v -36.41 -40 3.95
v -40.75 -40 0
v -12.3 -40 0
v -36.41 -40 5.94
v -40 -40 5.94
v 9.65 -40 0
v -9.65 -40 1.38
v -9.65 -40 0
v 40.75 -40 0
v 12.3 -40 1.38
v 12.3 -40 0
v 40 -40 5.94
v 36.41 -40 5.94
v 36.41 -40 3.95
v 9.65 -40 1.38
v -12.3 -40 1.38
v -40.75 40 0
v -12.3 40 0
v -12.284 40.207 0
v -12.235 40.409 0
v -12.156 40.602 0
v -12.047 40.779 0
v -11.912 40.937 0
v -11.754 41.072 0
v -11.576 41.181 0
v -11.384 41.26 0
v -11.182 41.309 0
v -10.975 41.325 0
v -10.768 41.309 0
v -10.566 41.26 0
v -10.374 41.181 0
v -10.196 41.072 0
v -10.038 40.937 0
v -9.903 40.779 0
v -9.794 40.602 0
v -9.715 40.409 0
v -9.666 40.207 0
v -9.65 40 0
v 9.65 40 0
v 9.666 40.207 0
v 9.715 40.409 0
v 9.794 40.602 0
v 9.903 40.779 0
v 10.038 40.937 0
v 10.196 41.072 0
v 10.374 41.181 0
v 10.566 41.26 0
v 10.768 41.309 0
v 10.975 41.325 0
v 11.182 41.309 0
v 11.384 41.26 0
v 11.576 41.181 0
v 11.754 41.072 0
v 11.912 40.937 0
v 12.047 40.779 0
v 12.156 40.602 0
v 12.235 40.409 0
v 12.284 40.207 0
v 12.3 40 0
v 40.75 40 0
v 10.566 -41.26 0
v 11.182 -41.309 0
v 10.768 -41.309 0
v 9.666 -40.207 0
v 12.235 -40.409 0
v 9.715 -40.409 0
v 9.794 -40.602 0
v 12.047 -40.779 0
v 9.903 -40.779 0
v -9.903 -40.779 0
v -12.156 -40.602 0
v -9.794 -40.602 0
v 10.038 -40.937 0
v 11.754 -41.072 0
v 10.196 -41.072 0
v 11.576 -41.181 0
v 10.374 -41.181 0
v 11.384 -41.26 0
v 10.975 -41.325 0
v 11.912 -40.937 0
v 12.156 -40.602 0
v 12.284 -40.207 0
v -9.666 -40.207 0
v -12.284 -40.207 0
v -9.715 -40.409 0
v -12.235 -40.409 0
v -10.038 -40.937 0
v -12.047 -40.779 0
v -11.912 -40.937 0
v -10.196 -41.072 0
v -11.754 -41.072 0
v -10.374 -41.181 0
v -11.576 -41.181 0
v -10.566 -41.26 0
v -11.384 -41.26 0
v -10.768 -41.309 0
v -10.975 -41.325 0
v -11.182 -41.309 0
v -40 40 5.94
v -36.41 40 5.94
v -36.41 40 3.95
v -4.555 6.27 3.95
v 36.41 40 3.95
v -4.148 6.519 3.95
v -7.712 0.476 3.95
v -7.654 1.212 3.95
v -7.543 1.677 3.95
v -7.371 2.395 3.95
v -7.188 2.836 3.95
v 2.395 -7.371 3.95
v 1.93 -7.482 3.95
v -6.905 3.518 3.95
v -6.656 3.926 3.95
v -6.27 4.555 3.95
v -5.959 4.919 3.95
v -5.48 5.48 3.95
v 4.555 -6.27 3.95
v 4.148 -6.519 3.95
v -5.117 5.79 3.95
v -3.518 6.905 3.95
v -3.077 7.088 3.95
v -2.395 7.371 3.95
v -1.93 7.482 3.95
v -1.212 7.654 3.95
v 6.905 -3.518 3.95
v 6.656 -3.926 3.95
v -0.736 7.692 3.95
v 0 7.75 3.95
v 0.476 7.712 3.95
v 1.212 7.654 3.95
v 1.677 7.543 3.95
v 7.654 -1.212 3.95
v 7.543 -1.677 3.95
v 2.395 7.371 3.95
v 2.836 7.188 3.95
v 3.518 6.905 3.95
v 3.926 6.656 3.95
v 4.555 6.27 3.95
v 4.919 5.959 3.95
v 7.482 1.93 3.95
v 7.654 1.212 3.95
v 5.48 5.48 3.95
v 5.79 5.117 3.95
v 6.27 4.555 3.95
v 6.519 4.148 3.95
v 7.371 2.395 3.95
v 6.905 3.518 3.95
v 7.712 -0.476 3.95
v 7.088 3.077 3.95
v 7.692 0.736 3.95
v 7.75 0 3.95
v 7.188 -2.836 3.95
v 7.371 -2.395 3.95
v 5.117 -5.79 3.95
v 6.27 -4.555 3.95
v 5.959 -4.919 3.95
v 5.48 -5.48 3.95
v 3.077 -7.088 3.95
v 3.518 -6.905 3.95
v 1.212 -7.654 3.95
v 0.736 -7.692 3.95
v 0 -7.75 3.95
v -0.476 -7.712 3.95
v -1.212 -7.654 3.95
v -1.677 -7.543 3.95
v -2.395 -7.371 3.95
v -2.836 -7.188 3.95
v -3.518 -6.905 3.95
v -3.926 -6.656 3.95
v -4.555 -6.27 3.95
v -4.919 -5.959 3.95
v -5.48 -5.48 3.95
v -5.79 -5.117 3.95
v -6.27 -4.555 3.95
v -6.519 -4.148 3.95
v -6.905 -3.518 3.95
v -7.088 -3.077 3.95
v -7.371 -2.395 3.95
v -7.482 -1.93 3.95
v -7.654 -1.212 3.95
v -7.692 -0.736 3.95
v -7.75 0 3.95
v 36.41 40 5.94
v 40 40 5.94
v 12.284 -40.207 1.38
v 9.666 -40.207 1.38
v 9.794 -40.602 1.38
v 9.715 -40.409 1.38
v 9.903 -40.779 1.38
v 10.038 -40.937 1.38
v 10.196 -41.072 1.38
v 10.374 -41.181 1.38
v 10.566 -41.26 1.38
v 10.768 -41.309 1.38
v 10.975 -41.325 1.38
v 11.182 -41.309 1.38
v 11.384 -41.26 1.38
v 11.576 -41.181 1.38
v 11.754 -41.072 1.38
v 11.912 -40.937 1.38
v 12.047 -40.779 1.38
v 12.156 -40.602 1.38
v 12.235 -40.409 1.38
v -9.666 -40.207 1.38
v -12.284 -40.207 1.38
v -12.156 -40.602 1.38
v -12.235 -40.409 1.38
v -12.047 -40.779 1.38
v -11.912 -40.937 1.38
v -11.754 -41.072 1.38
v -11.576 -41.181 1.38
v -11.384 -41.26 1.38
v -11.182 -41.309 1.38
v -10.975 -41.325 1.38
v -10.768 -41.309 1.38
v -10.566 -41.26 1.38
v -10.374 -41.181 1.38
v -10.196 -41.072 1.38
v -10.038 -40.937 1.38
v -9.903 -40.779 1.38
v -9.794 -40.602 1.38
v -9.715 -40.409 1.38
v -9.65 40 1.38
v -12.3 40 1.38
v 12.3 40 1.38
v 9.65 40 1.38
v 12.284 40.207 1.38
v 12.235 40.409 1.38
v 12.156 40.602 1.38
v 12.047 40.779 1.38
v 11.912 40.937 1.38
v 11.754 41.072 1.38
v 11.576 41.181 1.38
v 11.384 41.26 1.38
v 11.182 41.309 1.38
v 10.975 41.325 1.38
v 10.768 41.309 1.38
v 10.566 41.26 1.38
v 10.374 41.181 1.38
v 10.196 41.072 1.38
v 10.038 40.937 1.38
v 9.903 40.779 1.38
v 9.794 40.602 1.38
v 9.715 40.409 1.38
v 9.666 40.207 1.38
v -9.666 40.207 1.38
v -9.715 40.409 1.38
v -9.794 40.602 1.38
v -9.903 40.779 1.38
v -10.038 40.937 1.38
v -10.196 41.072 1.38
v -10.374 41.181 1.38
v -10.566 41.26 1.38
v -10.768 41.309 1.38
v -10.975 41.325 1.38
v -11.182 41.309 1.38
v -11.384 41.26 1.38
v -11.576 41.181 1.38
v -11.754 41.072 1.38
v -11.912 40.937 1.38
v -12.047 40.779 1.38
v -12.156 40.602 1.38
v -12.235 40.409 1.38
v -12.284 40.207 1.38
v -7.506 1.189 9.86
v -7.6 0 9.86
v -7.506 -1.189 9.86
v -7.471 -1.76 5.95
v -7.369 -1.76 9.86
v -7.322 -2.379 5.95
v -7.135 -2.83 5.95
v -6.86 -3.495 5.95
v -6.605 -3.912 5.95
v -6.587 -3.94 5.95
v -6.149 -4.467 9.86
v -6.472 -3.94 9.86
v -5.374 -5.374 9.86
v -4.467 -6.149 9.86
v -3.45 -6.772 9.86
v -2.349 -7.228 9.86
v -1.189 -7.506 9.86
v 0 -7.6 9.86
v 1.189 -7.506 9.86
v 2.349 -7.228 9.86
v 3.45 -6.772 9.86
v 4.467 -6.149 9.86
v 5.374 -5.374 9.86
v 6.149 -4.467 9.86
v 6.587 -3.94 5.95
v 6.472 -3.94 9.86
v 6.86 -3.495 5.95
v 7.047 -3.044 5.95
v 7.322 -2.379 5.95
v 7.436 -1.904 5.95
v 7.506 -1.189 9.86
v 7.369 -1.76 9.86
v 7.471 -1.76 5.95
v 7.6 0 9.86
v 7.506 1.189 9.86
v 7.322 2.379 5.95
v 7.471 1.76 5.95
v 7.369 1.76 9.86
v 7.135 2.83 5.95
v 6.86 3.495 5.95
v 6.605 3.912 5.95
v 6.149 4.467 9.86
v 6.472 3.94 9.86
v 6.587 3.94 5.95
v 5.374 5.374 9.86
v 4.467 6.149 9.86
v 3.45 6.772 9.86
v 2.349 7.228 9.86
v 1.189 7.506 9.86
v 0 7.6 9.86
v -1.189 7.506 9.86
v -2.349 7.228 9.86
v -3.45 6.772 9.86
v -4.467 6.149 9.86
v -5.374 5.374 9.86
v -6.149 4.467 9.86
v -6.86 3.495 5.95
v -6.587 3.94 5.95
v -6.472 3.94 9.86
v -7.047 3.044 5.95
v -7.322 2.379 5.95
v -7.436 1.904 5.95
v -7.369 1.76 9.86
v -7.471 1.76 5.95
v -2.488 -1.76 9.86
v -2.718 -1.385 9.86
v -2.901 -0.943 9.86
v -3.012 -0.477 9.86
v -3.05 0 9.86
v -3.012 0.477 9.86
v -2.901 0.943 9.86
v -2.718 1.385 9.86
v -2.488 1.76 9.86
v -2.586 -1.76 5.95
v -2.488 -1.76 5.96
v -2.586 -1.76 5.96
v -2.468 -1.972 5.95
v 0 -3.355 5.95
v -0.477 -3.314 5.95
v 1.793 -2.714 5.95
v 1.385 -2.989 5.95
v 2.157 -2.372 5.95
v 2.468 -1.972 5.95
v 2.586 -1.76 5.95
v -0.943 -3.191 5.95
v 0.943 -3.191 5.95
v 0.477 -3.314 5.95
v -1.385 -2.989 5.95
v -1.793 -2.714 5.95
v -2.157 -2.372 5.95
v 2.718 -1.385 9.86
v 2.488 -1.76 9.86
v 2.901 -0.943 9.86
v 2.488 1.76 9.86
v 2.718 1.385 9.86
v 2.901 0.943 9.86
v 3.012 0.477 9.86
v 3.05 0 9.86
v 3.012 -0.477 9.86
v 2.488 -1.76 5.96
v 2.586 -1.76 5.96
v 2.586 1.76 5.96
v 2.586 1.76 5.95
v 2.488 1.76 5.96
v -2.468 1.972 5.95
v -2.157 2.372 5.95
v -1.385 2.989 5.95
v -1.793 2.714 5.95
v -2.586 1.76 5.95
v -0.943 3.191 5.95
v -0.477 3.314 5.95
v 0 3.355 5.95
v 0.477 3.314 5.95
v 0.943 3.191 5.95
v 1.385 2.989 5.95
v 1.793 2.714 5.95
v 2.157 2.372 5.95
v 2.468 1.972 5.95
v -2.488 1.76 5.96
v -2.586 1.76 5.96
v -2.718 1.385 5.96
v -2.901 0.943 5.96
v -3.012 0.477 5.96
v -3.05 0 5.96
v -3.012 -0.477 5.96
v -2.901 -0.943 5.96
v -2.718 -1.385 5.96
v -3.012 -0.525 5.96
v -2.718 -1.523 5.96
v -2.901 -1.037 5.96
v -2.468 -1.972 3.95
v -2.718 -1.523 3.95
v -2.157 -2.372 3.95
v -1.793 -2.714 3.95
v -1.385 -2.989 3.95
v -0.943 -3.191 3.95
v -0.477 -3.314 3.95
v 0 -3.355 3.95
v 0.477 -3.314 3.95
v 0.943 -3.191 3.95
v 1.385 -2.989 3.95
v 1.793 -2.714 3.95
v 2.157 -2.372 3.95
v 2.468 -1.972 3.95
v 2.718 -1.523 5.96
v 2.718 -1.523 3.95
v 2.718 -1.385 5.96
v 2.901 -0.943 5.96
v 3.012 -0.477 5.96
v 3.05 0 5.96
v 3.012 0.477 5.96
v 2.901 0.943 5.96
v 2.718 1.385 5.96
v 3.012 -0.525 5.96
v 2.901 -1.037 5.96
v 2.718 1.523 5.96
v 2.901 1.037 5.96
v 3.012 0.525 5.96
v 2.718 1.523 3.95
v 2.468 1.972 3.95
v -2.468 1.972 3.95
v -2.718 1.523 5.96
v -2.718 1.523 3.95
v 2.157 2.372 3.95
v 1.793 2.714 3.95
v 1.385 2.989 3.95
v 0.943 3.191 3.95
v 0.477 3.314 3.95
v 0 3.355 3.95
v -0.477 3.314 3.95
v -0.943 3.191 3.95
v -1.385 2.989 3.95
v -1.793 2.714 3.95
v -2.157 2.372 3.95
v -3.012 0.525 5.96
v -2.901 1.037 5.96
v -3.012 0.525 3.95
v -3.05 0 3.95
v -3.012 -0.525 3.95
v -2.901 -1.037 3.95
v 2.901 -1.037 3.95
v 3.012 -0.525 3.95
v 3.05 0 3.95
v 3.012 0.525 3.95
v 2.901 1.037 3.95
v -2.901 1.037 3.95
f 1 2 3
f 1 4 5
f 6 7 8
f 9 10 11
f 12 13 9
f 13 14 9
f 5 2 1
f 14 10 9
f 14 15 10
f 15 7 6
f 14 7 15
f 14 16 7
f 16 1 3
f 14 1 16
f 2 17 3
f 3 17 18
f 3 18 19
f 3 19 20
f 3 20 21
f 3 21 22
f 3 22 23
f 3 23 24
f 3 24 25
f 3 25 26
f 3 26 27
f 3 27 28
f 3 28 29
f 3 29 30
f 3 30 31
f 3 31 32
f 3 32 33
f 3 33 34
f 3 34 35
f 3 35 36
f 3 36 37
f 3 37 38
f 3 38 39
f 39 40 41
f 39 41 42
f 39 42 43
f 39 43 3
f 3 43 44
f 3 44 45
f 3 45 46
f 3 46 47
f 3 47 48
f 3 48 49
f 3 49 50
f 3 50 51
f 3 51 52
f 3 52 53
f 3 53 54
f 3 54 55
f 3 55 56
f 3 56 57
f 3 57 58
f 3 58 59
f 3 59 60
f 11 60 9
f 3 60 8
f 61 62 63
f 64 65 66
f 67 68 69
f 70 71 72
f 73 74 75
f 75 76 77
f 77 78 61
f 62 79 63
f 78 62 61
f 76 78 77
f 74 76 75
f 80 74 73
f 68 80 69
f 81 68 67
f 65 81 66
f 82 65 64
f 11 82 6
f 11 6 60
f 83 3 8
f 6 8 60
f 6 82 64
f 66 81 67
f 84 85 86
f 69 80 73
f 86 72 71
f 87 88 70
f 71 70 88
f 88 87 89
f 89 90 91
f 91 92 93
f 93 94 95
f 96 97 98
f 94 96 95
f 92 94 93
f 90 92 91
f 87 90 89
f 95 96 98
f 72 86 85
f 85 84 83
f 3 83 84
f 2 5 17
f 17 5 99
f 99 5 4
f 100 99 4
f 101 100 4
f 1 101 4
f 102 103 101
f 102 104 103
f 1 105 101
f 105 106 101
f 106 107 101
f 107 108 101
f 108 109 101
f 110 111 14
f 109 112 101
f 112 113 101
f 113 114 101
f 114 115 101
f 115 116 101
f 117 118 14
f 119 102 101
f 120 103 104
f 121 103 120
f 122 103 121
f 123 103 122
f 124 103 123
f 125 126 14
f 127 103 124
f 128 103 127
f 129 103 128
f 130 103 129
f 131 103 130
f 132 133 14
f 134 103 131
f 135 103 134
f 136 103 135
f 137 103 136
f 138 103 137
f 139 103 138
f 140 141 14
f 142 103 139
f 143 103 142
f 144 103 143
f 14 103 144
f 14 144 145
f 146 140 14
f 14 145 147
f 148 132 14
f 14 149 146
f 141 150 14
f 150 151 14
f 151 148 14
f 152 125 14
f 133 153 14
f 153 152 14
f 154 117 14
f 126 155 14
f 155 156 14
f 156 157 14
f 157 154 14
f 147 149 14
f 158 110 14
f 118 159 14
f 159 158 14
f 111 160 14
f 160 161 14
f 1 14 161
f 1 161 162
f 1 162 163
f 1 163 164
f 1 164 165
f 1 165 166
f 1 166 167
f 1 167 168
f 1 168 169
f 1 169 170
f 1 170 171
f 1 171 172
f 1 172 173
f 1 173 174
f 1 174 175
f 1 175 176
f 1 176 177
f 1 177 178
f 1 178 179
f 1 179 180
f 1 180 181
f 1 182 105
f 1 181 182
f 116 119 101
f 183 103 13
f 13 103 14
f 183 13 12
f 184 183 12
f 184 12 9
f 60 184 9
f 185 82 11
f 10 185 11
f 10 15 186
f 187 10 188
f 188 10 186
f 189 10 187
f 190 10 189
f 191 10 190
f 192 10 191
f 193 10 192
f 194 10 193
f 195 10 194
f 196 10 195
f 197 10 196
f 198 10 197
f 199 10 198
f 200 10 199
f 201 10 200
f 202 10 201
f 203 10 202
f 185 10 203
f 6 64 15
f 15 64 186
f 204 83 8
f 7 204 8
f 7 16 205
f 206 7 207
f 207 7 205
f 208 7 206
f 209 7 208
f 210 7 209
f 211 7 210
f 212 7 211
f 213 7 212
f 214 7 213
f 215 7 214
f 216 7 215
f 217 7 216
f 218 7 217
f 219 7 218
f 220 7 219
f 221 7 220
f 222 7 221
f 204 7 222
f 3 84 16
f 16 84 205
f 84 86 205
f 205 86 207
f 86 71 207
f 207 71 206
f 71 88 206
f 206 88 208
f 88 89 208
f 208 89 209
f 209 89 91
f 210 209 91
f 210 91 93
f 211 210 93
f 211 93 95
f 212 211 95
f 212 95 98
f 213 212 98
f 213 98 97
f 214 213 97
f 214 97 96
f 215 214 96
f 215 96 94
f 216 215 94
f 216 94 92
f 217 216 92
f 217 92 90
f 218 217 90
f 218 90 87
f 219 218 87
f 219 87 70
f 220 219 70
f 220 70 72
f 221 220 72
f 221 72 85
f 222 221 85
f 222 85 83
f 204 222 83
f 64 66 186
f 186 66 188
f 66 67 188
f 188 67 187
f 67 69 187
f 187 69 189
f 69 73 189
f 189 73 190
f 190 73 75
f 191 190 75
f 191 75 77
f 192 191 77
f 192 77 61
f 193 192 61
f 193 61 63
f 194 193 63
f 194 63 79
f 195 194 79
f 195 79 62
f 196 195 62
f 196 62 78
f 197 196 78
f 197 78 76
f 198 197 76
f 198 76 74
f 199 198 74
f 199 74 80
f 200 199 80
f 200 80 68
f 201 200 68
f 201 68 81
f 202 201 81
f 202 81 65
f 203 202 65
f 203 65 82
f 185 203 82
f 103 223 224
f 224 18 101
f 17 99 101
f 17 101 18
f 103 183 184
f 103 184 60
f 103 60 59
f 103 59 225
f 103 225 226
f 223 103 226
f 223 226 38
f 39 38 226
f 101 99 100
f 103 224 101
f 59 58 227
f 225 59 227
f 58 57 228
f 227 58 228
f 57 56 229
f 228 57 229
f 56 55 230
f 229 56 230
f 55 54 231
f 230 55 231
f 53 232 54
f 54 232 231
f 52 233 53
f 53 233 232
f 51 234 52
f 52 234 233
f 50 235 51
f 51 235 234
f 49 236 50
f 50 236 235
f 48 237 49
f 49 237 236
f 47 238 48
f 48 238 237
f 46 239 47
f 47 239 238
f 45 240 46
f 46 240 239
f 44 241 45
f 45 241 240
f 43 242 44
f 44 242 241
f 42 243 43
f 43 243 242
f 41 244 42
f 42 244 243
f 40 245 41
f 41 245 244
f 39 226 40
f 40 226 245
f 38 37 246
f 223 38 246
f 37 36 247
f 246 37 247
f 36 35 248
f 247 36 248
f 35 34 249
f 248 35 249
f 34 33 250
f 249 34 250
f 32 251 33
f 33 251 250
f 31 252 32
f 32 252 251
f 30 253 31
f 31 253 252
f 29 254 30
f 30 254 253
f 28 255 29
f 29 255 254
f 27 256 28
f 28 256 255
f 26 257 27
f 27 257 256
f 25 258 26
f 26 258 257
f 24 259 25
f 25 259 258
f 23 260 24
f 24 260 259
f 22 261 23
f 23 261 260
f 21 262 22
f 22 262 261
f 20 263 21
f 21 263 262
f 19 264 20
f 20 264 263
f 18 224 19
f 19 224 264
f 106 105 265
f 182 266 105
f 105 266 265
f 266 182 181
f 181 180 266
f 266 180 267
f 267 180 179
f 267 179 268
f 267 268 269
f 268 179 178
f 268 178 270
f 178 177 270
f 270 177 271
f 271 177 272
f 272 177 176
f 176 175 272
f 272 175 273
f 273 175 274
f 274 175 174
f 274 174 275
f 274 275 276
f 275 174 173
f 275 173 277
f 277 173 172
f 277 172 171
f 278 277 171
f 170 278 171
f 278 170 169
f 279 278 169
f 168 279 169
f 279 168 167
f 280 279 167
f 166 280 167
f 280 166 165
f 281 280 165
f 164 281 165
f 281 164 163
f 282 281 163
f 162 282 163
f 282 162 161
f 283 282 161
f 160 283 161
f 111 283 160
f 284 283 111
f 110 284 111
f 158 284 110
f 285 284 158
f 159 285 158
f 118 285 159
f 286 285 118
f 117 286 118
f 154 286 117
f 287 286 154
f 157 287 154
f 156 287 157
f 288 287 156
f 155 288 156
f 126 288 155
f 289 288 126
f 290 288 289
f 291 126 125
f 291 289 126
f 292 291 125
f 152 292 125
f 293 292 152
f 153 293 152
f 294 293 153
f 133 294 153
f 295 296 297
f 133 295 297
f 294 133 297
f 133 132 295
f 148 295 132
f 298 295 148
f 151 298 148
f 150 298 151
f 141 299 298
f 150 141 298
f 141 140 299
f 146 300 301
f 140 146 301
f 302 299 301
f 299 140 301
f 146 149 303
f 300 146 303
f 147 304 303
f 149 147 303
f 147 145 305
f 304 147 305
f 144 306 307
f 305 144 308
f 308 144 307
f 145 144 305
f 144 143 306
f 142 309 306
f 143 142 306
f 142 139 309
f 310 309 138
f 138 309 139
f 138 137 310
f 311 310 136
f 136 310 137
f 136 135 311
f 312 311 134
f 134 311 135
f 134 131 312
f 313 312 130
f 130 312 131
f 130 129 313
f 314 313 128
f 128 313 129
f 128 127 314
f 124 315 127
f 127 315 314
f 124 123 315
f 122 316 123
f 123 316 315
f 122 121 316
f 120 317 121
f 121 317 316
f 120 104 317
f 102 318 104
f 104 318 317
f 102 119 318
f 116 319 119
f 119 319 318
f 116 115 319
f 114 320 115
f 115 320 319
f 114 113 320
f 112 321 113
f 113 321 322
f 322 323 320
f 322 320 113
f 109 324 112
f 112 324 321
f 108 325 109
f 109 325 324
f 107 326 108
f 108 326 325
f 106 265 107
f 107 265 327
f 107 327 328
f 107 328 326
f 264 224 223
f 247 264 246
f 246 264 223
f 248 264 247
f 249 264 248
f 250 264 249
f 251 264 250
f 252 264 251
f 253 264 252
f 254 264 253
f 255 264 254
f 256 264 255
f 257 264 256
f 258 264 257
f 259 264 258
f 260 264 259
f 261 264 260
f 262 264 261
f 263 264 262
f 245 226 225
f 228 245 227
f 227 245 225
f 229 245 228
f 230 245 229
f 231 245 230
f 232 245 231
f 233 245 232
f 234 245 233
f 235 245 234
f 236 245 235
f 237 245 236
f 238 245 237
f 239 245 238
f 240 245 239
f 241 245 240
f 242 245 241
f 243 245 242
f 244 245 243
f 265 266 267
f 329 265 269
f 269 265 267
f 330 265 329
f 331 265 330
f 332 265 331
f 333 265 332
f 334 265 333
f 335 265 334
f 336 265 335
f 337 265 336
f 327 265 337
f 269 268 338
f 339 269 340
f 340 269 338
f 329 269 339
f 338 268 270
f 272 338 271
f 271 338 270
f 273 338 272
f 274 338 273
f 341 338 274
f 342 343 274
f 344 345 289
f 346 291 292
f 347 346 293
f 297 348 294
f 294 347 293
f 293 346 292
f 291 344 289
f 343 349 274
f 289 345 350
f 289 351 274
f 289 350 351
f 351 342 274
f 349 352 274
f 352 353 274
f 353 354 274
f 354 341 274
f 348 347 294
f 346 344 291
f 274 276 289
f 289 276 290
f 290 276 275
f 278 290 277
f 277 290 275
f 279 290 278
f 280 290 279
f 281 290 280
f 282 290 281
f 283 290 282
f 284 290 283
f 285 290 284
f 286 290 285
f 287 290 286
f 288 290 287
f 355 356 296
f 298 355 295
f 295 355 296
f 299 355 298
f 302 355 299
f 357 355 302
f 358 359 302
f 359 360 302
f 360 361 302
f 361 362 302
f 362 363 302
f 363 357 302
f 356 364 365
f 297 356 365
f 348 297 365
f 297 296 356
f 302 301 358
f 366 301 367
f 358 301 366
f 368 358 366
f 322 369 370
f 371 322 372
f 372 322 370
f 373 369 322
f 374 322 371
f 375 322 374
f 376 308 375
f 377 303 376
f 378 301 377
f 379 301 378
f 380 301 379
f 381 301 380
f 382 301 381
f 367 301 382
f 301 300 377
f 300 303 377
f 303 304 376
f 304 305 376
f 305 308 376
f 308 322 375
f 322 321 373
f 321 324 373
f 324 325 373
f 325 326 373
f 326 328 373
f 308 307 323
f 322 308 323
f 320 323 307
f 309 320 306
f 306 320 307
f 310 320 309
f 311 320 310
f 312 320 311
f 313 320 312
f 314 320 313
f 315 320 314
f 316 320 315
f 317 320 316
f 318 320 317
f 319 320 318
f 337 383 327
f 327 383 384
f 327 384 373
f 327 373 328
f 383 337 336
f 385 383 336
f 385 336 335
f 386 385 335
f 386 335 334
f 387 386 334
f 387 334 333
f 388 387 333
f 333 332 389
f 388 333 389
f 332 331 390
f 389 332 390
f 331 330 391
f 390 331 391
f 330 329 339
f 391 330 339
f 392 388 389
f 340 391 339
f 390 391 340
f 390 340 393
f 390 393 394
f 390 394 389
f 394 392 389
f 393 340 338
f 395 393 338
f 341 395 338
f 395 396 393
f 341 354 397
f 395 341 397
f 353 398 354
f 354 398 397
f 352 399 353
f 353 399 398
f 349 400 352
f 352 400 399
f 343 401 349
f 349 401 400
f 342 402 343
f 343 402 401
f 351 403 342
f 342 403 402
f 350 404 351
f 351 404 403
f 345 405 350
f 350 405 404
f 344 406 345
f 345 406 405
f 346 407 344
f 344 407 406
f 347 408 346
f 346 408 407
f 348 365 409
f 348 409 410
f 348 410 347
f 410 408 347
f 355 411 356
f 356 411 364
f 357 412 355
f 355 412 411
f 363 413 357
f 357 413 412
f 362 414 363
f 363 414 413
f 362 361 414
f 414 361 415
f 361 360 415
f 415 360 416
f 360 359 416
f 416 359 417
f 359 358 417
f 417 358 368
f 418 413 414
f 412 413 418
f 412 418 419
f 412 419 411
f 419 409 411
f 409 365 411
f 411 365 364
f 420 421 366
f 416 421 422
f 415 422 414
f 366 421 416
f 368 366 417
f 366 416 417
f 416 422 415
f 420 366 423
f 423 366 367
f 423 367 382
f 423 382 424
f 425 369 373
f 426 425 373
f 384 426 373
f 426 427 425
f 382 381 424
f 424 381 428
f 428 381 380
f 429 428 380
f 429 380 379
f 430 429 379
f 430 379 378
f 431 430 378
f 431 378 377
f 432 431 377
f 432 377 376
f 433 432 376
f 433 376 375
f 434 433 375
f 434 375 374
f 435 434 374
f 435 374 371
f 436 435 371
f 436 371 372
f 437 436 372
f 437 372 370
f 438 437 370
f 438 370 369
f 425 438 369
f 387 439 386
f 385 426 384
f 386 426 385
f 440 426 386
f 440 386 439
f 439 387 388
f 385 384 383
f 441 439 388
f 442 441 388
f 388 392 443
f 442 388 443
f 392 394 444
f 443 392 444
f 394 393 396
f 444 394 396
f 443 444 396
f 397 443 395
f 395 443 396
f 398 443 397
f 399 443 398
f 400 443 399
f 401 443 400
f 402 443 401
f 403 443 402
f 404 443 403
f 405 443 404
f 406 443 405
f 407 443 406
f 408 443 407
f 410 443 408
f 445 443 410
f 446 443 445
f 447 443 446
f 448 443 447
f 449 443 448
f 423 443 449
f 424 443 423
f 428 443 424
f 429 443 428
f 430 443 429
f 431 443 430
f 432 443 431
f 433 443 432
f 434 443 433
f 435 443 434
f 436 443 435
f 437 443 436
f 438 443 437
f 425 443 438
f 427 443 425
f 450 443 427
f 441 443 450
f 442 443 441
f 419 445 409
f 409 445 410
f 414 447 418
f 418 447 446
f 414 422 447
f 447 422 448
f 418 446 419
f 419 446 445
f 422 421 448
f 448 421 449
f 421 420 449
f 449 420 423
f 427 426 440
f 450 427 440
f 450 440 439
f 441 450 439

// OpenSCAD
/* large-base.scad
 *
 * Copyright (C) Robert B. Ross, 2014
 *
 * This software is released under the Creative Commons
 * Attribution-ShareAlike 4.0 International Public License.
 * 
 * TODO:
 *
 */

$fn=40;
pipSlop = 0.3; // Pips end up being a little too close together
pipPos = 20 - 7.4 - 2.65/2 - pipSlop;
insideSlop = 0.8; // Space for ID token is often short if printed exactly.

/* main base with pips */
difference() {
    union() {
	polyhedron(points=[[-81.5/2,-40.,0], [-81.5/2,40.,0], [81.5/2,40.,0],
			   [81.5/2, -40., 0], // was 81.38
			   [-40,-40,5.94], [-40, 40,5.94],
			   [40,40,5.94], [40, -40, 5.94]],
		   faces=[[3,2,1,0], [4,5,6,7], [0,1,5,4], [1,2,6,5], [2,3,7,6],
			  [3,0,4,7]]);
	
	
	translate([-1*pipPos,-40.,0]) cylinder(r=2.65/2,h=1.38);
	translate([1*pipPos,-40.,0]) cylinder(r=2.65/2,h=1.38);
	translate([-1*pipPos,40.,0]) cylinder(r=2.65/2,h=1.38);
	translate([1*pipPos,40.,0]) cylinder(r=2.65/2,h=1.38);
    }

    translate([-1*(72.02+insideSlop)/2,-41,3.95])
	cube([72.02+insideSlop,82,5.94-3.95+0.2]);
}

/* center cylinder with cut-outs */
difference() {
    cylinder(r1=15.7/2, r2=15.6/2-0.2,h=9.86); // was 15.6

    translate([0,0,3.95]) cylinder(r=6.1/2,h=9.86-3.95+0.2);

    /* accounting for plastic behavior */
    translate([0,0,3.95]) scale([1.0,1.1,1.0]) cylinder(r=6.1/2,h=2.01);

    /* room for identifiers */
    translate([-16/2,3.52/2,3.95+2]) cube([16,2.18,9.86-3.95+0.2]);
    mirror([0,1,0]) translate([-16/2,3.52/2,3.95+2]) cube([16,2.18,9.86-3.95+0.2]);

    // translate([-0.75,-3,3.95+2]) cube([1.5,6,9.86-3.95+0.2]);
}

/*
 * Local variables:
 *  mode: C
 *  c-indent-level: 4
 *  c-basic-offset: 4
 * End:
 *
 * vim: ts=8 sts=4 sw=4 expandtab
 */
